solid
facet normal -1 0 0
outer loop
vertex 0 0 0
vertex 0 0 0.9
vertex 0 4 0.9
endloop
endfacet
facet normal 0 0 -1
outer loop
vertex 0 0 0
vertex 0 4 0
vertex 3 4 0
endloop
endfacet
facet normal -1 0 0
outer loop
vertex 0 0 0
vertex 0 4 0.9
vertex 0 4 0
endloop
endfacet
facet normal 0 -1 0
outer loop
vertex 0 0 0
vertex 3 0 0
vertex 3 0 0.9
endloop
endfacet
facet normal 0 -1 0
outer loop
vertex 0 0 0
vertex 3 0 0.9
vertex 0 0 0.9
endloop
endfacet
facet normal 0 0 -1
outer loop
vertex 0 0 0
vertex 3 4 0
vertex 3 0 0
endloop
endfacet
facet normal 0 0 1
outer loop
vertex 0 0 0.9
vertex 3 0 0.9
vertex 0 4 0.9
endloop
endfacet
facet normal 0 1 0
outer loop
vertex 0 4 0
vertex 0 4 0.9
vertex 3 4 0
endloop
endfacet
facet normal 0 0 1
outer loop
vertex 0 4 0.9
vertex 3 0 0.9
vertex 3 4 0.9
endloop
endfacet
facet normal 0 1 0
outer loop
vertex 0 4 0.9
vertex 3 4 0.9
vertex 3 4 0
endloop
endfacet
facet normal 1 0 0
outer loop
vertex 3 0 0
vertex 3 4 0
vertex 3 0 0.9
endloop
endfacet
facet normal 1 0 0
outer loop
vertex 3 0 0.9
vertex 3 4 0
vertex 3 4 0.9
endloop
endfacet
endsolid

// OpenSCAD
/* Warning, this is a very basic generator with a lot of approximation 
input data : [VDFN, JUA, 3x4x0.9mm, 10, , A, C04-01027A]
generated by com.zoubworld.electronics.cad.model3d.Basic
Date : Sun Feb 15 10:50:49 CET 2026
*/

//body
color("black")
translate([0,0,0])
cube([3.0,4.0,0.9], center=false);
